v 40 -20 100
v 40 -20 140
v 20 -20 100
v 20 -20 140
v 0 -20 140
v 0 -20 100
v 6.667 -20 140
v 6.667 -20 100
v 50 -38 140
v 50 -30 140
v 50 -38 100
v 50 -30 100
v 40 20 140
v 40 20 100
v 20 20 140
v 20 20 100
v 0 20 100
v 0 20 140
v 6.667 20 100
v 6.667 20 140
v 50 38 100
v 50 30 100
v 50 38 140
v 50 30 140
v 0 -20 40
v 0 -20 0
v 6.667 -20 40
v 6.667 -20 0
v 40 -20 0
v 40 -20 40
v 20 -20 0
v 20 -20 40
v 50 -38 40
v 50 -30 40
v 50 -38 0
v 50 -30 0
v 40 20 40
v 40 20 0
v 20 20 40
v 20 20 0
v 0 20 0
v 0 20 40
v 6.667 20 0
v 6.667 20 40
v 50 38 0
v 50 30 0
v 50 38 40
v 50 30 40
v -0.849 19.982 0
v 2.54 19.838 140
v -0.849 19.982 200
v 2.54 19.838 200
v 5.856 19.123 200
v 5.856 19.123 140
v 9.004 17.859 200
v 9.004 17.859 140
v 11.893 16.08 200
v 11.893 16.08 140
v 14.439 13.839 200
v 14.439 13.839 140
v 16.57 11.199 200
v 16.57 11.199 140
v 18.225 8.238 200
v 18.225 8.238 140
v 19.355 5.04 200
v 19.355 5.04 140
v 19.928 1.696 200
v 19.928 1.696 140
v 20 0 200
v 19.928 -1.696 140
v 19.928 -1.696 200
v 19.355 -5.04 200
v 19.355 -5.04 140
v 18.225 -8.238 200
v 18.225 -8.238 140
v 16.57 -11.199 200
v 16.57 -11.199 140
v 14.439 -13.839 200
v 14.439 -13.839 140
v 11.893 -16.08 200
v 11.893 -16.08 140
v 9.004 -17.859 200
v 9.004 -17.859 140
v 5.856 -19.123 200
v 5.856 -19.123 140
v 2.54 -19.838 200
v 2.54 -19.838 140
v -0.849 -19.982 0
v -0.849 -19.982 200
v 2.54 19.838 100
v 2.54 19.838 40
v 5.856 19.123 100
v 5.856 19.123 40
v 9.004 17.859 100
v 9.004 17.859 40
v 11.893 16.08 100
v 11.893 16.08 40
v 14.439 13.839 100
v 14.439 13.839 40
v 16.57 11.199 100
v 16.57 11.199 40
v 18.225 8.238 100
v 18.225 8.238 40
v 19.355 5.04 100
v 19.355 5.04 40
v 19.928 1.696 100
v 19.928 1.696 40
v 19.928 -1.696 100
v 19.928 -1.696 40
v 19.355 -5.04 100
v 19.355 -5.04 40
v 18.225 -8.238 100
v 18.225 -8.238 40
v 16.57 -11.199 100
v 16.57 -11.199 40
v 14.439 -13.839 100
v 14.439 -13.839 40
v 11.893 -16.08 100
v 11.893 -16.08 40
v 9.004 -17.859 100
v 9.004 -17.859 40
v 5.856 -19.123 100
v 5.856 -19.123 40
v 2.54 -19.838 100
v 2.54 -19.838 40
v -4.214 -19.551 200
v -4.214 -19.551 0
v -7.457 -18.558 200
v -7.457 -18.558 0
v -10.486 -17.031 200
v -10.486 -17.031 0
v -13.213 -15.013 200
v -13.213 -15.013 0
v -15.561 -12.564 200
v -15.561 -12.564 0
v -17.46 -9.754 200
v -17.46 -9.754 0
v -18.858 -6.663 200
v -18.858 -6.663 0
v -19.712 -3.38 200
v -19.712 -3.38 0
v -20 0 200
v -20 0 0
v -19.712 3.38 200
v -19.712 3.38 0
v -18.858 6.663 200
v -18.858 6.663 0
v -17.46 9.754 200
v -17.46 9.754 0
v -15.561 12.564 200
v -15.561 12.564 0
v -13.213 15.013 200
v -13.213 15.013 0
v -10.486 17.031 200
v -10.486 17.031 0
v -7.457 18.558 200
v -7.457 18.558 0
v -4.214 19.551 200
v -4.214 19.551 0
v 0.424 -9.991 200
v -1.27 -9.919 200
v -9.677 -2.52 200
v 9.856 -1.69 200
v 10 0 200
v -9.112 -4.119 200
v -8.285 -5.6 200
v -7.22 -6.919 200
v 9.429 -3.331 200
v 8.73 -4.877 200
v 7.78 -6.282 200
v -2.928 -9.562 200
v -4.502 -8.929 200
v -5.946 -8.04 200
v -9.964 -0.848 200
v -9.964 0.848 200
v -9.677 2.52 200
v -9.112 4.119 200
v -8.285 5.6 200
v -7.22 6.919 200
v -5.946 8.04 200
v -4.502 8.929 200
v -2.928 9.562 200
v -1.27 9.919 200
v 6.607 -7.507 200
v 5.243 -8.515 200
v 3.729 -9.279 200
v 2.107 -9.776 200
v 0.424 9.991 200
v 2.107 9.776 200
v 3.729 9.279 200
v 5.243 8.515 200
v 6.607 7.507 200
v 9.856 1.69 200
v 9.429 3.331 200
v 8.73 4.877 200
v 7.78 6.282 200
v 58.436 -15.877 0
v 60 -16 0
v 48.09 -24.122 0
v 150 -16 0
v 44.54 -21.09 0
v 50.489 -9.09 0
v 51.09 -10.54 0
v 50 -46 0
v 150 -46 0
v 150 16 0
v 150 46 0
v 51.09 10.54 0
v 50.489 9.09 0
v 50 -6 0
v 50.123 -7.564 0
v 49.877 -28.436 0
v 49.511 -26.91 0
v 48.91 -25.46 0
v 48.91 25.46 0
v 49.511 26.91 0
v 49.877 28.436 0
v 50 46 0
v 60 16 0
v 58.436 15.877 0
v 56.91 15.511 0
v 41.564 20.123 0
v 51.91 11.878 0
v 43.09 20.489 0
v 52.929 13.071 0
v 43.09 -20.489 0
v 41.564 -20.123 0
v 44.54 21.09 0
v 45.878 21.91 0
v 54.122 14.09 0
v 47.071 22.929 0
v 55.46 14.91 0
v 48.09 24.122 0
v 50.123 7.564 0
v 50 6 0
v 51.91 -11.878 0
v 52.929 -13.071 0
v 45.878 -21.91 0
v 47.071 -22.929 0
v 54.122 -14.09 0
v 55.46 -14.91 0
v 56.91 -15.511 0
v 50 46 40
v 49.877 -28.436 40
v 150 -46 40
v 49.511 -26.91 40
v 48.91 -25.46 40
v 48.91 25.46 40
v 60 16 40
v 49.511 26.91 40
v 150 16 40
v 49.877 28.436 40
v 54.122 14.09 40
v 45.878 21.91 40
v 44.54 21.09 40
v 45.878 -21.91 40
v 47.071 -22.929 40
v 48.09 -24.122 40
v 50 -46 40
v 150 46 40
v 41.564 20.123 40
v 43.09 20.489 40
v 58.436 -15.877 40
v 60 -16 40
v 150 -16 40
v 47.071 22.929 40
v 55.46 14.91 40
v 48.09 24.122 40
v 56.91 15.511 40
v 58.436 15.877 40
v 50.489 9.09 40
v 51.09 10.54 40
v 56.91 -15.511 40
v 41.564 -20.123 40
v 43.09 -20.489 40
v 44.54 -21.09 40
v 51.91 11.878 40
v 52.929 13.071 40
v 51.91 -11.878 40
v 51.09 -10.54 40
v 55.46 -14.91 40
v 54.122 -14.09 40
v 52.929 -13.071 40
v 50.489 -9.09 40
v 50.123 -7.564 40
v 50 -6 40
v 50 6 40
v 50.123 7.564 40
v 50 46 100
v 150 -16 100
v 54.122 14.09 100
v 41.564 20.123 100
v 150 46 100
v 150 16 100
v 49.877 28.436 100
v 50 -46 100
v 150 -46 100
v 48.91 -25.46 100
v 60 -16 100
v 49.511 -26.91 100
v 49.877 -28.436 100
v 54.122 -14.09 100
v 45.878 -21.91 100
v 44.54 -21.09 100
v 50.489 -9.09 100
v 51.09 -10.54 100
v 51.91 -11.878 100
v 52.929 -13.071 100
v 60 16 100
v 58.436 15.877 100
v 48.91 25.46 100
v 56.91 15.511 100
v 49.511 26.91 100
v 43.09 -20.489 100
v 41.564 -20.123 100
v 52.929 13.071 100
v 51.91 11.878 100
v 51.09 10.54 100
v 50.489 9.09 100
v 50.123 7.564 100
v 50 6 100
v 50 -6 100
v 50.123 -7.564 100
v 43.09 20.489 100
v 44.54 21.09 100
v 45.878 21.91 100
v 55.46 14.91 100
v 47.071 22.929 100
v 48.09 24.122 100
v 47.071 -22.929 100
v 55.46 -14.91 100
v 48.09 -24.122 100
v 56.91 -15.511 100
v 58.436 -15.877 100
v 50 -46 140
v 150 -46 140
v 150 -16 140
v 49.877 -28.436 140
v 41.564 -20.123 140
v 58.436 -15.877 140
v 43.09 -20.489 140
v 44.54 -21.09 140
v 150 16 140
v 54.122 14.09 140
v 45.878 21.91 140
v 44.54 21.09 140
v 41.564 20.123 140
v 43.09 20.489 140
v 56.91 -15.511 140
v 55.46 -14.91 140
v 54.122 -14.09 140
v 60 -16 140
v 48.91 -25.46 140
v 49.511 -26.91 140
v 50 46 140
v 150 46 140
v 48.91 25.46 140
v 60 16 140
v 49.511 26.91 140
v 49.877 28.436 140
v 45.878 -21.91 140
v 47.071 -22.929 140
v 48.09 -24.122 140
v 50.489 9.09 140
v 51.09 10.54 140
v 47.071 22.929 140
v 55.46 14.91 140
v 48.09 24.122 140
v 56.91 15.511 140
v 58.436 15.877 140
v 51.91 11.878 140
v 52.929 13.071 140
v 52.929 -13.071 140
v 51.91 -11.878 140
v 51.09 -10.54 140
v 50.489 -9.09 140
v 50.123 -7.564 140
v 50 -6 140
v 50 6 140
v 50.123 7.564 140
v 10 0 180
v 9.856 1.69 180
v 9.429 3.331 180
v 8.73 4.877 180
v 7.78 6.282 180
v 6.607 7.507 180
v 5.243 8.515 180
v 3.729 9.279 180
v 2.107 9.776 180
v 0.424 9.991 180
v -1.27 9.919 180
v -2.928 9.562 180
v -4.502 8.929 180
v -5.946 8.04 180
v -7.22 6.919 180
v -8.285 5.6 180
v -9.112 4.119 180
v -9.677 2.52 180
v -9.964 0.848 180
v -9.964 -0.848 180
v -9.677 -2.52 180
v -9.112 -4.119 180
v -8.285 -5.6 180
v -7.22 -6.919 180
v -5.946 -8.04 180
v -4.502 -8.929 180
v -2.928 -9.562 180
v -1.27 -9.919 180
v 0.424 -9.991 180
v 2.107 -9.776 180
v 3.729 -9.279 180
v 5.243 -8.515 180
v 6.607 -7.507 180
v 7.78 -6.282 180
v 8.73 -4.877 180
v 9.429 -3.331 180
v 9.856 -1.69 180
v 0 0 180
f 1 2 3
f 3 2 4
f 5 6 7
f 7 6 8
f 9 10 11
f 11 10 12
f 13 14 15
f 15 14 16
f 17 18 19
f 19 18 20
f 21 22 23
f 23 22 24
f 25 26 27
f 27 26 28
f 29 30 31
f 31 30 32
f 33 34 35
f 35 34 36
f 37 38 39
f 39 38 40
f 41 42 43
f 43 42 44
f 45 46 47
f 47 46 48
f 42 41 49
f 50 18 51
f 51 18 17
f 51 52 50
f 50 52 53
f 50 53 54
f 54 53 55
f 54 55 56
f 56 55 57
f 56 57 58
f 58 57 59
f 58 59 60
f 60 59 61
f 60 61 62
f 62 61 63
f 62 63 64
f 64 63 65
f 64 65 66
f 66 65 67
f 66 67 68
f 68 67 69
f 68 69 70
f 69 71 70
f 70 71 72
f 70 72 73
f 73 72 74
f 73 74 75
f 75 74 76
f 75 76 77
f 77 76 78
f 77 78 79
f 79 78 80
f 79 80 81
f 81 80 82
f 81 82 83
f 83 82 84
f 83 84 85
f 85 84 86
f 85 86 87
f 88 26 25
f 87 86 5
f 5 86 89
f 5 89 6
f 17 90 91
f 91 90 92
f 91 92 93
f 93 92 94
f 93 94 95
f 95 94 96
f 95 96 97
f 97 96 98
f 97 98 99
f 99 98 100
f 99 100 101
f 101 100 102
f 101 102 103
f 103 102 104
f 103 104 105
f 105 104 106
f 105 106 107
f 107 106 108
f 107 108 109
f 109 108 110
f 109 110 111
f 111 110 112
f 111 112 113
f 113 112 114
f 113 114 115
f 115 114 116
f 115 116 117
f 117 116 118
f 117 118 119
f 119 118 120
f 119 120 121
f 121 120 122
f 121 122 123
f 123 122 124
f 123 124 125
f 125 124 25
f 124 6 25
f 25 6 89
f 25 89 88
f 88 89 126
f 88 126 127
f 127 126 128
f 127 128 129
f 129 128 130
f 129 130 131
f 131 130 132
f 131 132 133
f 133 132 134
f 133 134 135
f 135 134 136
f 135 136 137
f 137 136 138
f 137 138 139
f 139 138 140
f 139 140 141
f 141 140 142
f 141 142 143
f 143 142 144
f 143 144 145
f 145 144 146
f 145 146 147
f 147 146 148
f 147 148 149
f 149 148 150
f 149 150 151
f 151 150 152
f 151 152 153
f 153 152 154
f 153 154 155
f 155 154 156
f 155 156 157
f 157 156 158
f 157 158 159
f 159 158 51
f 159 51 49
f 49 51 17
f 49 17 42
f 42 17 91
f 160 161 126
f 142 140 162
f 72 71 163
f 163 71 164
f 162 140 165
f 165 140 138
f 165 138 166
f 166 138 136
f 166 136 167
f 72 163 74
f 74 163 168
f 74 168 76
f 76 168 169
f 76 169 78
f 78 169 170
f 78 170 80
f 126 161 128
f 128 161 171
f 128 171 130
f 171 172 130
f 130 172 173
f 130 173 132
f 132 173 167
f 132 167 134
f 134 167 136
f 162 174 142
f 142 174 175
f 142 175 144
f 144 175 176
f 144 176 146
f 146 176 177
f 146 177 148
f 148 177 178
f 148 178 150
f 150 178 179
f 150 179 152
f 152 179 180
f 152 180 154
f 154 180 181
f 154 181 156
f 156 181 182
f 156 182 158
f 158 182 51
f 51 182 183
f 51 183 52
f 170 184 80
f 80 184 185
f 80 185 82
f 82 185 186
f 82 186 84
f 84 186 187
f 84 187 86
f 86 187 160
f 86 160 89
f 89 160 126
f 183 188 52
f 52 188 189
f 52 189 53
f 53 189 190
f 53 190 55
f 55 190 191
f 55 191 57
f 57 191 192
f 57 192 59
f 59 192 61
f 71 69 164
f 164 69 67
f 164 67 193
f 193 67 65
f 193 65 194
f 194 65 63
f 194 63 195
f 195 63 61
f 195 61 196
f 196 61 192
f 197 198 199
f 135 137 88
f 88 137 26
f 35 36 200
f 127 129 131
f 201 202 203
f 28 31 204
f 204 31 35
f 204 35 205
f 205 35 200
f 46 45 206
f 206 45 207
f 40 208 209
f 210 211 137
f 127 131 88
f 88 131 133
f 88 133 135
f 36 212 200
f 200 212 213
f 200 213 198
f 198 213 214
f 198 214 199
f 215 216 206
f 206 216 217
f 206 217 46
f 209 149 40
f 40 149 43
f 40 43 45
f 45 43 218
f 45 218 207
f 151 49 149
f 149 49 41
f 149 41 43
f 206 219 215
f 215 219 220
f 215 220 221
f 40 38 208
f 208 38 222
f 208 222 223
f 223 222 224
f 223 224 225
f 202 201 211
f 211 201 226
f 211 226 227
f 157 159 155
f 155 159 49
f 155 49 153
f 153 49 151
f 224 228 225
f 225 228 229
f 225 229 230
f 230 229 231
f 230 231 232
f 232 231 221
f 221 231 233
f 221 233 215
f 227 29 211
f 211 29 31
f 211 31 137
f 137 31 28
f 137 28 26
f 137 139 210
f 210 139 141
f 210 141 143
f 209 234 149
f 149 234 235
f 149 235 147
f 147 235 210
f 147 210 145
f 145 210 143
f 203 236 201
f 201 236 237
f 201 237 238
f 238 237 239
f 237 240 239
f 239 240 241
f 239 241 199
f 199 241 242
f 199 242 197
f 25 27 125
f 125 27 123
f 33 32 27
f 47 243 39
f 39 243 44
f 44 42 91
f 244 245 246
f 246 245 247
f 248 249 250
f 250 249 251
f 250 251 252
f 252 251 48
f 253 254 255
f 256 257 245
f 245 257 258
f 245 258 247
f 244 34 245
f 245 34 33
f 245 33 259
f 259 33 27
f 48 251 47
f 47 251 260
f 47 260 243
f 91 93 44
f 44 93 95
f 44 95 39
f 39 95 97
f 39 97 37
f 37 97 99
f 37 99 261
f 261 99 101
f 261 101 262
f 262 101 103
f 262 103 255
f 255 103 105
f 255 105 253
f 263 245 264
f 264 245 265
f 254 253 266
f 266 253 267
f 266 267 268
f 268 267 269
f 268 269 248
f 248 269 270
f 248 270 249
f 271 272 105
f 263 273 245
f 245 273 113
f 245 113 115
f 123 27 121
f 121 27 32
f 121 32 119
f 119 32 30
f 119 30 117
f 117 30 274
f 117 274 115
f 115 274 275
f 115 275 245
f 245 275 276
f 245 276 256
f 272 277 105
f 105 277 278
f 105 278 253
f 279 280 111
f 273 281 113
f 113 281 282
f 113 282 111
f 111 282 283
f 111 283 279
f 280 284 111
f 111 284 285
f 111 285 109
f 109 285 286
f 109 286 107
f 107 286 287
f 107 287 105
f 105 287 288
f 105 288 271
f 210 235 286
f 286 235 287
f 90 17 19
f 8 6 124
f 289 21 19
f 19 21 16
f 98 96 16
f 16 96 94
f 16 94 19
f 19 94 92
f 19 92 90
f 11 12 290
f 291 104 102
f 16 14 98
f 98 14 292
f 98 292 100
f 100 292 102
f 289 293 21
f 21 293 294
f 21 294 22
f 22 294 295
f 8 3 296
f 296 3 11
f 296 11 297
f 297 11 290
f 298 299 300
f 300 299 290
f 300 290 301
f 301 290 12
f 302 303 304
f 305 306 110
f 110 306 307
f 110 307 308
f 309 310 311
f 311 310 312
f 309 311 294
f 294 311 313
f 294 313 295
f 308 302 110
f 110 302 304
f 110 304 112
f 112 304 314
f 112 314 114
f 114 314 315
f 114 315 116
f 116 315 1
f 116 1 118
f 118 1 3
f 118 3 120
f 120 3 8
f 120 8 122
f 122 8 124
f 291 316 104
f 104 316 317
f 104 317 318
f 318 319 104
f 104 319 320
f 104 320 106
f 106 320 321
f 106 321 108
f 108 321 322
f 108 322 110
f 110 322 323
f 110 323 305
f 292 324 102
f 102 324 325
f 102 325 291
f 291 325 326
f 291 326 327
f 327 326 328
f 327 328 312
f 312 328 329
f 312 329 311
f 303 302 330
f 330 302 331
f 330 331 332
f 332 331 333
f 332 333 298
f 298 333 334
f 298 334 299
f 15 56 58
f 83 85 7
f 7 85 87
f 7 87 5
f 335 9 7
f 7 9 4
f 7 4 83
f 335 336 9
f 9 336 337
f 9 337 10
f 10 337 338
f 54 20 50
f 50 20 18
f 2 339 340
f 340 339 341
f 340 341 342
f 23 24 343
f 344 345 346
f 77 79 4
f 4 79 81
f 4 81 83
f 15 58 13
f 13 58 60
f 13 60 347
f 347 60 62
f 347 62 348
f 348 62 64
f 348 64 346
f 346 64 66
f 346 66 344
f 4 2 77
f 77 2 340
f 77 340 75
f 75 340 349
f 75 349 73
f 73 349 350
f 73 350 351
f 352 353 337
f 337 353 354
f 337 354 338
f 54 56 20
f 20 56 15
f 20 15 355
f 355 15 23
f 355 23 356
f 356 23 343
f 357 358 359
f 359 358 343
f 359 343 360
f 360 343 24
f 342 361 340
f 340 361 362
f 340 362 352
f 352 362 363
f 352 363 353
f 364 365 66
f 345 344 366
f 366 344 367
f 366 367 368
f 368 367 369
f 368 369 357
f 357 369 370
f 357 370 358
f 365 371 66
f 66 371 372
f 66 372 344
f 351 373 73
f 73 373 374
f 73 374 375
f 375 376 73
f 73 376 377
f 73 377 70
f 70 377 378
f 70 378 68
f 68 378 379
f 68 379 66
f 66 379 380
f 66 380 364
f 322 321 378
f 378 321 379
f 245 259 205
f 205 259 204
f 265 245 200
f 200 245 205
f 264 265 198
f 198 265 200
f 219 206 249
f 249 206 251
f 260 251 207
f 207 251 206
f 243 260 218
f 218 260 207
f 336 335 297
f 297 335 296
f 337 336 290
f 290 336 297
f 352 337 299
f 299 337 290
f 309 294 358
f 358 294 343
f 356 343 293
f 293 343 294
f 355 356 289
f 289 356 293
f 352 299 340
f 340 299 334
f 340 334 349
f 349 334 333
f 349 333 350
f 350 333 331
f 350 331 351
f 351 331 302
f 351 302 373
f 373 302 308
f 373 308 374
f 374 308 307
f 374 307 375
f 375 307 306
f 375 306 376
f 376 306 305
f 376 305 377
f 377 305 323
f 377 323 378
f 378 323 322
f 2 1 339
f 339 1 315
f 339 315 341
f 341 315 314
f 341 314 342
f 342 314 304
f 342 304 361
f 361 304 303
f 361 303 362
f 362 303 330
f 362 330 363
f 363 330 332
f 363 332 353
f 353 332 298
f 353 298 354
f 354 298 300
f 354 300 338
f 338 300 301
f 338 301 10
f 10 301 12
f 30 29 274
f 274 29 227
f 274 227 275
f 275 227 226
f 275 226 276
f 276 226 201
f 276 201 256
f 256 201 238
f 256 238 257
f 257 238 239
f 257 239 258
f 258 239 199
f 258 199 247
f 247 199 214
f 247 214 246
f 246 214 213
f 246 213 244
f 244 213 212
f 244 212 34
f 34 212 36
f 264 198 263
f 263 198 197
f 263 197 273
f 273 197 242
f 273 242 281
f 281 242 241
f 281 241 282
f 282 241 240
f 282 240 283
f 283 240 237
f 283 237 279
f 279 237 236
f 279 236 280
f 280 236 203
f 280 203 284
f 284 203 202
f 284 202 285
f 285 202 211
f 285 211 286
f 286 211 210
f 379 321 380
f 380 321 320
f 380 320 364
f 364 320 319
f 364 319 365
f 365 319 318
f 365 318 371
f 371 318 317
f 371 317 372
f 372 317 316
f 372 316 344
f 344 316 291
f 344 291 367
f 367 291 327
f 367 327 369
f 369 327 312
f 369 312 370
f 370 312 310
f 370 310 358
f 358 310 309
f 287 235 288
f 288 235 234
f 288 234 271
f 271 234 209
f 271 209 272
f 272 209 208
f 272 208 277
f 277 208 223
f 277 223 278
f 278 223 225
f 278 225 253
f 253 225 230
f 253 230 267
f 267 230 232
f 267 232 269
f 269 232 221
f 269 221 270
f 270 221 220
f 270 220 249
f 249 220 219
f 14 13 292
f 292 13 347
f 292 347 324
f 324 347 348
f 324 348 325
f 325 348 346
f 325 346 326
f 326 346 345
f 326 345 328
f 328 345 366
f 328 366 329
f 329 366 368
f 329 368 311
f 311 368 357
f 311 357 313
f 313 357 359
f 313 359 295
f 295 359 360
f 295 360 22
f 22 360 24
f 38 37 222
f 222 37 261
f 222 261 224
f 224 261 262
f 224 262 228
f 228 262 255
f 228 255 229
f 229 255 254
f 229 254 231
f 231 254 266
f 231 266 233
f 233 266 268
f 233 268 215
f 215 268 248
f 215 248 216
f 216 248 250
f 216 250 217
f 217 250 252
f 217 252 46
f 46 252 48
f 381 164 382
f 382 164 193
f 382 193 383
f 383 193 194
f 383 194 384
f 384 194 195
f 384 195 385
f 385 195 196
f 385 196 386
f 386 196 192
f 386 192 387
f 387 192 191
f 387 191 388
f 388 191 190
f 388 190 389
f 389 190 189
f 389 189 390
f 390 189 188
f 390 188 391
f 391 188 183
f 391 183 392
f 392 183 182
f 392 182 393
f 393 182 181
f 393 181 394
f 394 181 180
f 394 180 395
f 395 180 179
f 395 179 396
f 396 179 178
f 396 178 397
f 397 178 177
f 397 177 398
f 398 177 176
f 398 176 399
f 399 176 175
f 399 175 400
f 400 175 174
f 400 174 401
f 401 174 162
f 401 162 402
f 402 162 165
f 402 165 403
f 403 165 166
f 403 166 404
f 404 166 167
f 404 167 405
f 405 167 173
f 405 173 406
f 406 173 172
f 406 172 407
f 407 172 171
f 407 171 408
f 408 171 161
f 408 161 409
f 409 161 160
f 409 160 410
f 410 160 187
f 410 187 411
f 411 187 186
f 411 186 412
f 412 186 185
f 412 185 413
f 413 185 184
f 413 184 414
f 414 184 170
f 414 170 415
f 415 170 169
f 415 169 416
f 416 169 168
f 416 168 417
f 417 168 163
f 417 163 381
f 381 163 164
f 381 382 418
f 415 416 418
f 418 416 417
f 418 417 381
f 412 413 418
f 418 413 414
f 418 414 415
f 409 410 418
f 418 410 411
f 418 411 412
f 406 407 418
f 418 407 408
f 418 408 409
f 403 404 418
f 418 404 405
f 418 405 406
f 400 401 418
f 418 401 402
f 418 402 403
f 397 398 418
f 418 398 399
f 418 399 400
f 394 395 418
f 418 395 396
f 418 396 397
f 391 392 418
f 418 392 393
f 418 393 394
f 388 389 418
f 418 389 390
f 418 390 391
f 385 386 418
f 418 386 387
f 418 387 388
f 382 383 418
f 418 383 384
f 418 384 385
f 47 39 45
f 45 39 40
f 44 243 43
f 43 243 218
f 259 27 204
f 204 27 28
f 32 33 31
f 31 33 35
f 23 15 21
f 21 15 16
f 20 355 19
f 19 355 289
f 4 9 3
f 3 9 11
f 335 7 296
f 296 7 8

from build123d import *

# Parameters (mm, degrees)
SKETCH_1_R          = 20
EXTRUDE_1_DEPTH     = 200
SKETCH_2_W          = 40
SKETCH_2_H          = 40
EXTRUDE_2_DEPTH     = 50
SKETCH_3_W          = 100
SKETCH_3_H          = 30
EXTRUDE_3_DEPTH     = 40
SKETCH_4_W          = 100
SKETCH_4_H          = 30
EXTRUDE_4_DEPTH     = 40
FILLET_1_R          = 10
SKETCH_10_R         = 10
CUT_EXTRUDE_1_DEPTH = 20
EXTRUDE_6_DEPTH     = 20
EXTRUDE_7_DEPTH     = 20


with BuildPart() as part:
    # 스케치1 → 보스-돌출1 (new body)
    with BuildSketch(Plane.XY):
        Circle(SKETCH_1_R)
    extrude(amount=EXTRUDE_1_DEPTH)

    # 스케치2 → 보스-돌출2 (add)
    with BuildSketch(Plane(origin=(0, 0, 0), x_dir=(0, 0, -1), z_dir=(1, 0, 0))):
        with Locations((-20, 0)):
            Rectangle(SKETCH_2_W, SKETCH_2_H)
        with Locations((-120, 0)):
            Rectangle(SKETCH_2_W, SKETCH_2_H)
    extrude(amount=EXTRUDE_2_DEPTH)

    # 스케치3 → 보스-돌출3 (add)
    with BuildSketch(Plane(origin=(0, 0, 0), x_dir=(-1, 0, 0), z_dir=(0, 0, -1))):
        with Locations((-100, -31)):
            Rectangle(SKETCH_3_W, SKETCH_3_H)
        with Locations((-100, 31)):
            Rectangle(SKETCH_3_W, SKETCH_3_H)
    extrude(amount=-EXTRUDE_3_DEPTH)

    # 스케치4 → 보스-돌출4 (add)
    with BuildSketch(Plane(origin=(0, 0, 100), x_dir=(-1, 0, 0), z_dir=(0, 0, -1))):
        with Locations((-100, -31)):
            Rectangle(SKETCH_4_W, SKETCH_4_H)
        with Locations((-100, 31)):
            Rectangle(SKETCH_4_W, SKETCH_4_H)
    extrude(amount=-EXTRUDE_4_DEPTH)

    # 필렛1
    fillet_1_edges = [part.edges().sort_by_distance(p)[0] for p in [
        (50, -20, 20),
        (50, 20, 120),
        (50, -20, 120),
        (50, -16, 20),
        (50, 16, 20),
        (50, -16, 120),
        (50, 16, 120),
        (50, 20, 20),
    ]]
    fillet(fillet_1_edges, radius=FILLET_1_R)

    # 스케치10 → 컷-돌출1 (cut)
    with BuildSketch(Plane.XY.offset(200)):
        Circle(SKETCH_10_R)
    extrude(amount=-CUT_EXTRUDE_1_DEPTH, mode=Mode.SUBTRACT)

    # 스케치11 → 보스-돌출6 (add, symmetric)
    with BuildSketch(Plane.XY.offset(20)):
        Polygon((20, 20), (50, 38), (50, 46), (6.666666667, 20), align=None)
        Polygon((20, -20), (50, -38), (50, -46), (6.666666667, -20), align=None)
    extrude(amount=EXTRUDE_6_DEPTH, both=True)

    # 스케치13 → 보스-돌출7 (add, symmetric)
    with BuildSketch(Plane.XY.offset(120)):
        Polygon((20, 20), (50, 38), (50, 46), (6.666666667, 20), align=None)
        Polygon((20, -20), (6.666666667, -20), (50, -46), (50, -38), align=None)
    extrude(amount=EXTRUDE_7_DEPTH, both=True)


solid = part.part
